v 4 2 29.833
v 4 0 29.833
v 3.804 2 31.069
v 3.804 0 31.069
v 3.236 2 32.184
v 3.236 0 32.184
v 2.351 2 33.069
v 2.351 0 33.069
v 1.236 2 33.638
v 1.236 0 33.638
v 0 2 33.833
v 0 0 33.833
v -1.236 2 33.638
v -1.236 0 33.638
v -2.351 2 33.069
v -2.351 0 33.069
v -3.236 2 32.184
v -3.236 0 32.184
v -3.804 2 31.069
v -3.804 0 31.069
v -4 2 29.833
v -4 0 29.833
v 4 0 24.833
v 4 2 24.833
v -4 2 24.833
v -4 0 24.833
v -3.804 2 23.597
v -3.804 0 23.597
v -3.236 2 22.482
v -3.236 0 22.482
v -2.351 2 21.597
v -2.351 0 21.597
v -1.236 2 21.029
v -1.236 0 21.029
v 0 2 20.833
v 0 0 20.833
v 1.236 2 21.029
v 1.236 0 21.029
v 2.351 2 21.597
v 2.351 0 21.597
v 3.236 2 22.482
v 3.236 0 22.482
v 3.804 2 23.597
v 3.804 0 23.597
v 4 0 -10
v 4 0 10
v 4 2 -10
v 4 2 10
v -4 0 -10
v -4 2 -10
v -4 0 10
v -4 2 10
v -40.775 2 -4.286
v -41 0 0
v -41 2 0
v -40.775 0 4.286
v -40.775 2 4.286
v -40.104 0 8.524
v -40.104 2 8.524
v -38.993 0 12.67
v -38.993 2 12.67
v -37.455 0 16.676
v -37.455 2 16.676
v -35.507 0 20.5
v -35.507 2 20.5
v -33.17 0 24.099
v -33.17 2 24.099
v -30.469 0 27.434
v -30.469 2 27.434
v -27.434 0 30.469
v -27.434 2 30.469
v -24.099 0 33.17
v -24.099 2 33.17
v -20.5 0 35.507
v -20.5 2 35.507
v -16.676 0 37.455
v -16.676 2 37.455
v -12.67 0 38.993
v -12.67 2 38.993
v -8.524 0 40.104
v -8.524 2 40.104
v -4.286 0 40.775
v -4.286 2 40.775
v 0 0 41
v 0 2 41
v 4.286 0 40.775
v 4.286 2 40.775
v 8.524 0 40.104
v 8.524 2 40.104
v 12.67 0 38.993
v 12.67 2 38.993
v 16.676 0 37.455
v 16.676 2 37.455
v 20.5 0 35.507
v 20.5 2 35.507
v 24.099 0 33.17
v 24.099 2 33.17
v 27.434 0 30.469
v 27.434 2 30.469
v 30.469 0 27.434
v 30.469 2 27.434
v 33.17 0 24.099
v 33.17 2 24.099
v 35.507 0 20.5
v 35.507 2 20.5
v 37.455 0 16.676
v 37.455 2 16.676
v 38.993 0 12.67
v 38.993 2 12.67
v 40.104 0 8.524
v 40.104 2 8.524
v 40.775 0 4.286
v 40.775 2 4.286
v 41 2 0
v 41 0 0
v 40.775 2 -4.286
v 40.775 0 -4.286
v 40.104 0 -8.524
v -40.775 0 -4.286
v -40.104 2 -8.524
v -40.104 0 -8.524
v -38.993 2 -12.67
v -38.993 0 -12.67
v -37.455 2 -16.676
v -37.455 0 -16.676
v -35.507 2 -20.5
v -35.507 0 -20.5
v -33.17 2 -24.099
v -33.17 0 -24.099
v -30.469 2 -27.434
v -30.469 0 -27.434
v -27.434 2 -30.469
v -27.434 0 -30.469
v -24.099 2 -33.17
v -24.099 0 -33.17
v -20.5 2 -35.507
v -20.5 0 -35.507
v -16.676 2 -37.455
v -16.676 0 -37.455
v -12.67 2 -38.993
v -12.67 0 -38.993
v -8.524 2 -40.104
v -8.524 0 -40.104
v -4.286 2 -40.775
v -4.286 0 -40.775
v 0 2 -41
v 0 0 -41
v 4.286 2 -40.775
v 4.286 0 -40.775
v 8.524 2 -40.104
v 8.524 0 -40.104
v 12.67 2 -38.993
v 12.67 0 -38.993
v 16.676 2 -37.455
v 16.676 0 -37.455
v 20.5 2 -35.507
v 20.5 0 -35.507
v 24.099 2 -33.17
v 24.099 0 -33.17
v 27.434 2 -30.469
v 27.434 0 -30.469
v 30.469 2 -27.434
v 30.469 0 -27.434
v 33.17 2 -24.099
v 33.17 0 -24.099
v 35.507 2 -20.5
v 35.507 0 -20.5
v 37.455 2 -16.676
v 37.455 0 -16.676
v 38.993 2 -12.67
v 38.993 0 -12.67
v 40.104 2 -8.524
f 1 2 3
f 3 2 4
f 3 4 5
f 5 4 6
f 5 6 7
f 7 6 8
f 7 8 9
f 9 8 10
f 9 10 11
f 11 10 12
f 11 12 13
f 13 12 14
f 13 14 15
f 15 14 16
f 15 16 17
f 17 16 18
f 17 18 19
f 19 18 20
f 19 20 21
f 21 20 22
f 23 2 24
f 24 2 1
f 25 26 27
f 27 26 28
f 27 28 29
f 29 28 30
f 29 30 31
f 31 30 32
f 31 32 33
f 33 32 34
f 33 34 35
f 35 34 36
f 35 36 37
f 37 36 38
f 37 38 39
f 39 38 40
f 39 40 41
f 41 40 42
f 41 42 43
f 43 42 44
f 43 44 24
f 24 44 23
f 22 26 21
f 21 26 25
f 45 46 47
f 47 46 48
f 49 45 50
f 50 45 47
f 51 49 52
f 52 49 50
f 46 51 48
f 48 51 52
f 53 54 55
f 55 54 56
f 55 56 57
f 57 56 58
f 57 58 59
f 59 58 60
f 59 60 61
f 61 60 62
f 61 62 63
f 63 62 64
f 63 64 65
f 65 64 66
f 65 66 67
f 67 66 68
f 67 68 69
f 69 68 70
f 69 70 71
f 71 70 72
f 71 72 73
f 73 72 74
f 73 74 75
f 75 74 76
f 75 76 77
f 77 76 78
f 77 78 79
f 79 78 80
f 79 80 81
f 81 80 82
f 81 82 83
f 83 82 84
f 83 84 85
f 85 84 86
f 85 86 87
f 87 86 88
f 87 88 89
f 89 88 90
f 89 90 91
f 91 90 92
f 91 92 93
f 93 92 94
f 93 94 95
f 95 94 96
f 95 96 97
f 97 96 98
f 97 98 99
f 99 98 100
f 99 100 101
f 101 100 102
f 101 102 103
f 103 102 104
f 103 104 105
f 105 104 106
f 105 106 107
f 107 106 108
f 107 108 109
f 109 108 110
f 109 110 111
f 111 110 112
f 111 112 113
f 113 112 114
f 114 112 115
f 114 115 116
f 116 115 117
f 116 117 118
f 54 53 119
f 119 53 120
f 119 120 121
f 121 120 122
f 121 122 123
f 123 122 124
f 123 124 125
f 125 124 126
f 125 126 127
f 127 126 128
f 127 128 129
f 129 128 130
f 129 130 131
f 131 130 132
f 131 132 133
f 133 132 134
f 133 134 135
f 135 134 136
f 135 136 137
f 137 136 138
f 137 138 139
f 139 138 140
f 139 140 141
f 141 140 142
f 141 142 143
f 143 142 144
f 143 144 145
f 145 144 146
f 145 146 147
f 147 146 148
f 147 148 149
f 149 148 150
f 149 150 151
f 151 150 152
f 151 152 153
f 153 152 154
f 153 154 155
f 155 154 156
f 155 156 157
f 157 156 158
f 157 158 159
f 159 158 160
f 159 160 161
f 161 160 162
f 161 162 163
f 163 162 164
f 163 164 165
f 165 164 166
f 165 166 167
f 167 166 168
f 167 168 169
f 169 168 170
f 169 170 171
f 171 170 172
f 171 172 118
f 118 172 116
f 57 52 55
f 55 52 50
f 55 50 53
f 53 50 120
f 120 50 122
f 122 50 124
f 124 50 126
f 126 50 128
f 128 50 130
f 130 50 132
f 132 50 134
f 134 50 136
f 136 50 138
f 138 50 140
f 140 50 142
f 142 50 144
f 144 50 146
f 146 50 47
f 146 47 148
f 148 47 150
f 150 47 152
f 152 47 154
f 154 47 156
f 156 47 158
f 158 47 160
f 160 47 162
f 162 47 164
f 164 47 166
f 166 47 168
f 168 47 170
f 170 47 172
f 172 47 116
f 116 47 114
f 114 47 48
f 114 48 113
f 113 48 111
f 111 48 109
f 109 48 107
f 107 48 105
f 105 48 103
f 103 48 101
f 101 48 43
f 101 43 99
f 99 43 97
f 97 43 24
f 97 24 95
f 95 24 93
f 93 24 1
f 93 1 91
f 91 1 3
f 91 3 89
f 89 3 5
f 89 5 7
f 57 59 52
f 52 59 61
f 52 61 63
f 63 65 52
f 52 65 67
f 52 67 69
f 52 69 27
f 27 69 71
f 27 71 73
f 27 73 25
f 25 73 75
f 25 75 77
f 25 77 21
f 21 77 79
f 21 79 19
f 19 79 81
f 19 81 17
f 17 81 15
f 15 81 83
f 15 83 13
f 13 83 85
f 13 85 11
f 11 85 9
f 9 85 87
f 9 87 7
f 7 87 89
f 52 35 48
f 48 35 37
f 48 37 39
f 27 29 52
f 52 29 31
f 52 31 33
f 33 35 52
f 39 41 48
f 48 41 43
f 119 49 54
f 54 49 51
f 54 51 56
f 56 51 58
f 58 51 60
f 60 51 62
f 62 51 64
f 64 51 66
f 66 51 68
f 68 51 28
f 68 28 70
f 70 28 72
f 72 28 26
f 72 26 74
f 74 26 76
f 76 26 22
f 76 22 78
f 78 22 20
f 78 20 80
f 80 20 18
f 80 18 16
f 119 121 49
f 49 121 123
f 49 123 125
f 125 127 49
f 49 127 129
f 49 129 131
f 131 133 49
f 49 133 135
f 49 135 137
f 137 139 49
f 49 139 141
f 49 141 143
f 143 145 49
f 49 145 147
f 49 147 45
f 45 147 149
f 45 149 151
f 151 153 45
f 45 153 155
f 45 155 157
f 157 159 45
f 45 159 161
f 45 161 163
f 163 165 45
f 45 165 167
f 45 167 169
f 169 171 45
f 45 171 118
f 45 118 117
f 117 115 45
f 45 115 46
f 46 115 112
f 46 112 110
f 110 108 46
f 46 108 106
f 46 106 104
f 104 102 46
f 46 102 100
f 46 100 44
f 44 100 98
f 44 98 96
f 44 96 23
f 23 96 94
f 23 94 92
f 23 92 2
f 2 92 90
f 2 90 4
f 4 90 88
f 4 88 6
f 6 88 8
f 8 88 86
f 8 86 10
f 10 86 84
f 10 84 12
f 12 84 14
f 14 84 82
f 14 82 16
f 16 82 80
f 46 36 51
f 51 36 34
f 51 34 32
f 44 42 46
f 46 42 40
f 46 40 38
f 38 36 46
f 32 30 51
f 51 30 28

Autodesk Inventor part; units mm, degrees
ref_plane "YZ Plane" through (0, 0, 0) normal (1, 0, 0) x (0, 1, 0)
ref_plane "XZ Plane" through (0, 0, 0) normal (0, 1, 0) x (-1, 0, 0)
ref_plane "XY Plane" through (0, 0, 0) normal (0, 0, 1) x (1, 0, 0)
sketch "Sketch1" plane through (0, 0, 0) normal (0, 1, 0) x (-1, 0, 0)
  circle A0 centre (0, 0) radius 41
  line L0 (-4, 10) -> (4, 10)
  line L1 (4, 10) -> (4, -10)
  line L2 (4, -10) -> (-4, -10)
  line L3 (-4, -10) -> (-4, 10)
  line L4 (-4, 10) -> (4, -10) construction
  line L5 (4, 10) -> (-4, -10) construction
  circle A1 centre (0, 0) radius 27.3333 construction
  line L6 (0, 20.8333) -> (0, 33.8333) construction
  line L7 (4, 29.8333) -> (4, 24.8333)
  line L8 (-4, 29.8333) -> (-4, 24.8333)
  arc A2 (2.7505, 27.1946) -> (2.625, 27.3333) centre (0, 24.8333) ccw
  arc A3 (-2.625, 27.3333) -> (-2.7505, 27.1946) centre (0, 24.8333) ccw
  arc A4 (-4, 24.8333) -> (4, 24.8333) centre (0, 24.8333) ccw
  arc A5 (2.51, 27.2178) -> (2.625, 27.3333) centre (0, 29.8333) ccw
  arc A6 (4, 29.8333) -> (-4, 29.8333) centre (0, 29.8333) ccw
  arc A7 (-2.625, 27.3333) -> (-2.51, 27.2178) centre (0, 29.8333) ccw
  point P0 (0, 27.3333)
  point P1 (1.5875, 22.7958)
  dimension "d0" = 8
  dimension "d1" = 20
  dimension "d2" = 82
  dimension "d4" = 54.6667
  dimension "d5" = 13
  dimension "d11" = 4
extrude "Extrusion1" add sketch "Sketch1" along normal blind 2
properties part number "Tic-Tac Baseplate v2"
